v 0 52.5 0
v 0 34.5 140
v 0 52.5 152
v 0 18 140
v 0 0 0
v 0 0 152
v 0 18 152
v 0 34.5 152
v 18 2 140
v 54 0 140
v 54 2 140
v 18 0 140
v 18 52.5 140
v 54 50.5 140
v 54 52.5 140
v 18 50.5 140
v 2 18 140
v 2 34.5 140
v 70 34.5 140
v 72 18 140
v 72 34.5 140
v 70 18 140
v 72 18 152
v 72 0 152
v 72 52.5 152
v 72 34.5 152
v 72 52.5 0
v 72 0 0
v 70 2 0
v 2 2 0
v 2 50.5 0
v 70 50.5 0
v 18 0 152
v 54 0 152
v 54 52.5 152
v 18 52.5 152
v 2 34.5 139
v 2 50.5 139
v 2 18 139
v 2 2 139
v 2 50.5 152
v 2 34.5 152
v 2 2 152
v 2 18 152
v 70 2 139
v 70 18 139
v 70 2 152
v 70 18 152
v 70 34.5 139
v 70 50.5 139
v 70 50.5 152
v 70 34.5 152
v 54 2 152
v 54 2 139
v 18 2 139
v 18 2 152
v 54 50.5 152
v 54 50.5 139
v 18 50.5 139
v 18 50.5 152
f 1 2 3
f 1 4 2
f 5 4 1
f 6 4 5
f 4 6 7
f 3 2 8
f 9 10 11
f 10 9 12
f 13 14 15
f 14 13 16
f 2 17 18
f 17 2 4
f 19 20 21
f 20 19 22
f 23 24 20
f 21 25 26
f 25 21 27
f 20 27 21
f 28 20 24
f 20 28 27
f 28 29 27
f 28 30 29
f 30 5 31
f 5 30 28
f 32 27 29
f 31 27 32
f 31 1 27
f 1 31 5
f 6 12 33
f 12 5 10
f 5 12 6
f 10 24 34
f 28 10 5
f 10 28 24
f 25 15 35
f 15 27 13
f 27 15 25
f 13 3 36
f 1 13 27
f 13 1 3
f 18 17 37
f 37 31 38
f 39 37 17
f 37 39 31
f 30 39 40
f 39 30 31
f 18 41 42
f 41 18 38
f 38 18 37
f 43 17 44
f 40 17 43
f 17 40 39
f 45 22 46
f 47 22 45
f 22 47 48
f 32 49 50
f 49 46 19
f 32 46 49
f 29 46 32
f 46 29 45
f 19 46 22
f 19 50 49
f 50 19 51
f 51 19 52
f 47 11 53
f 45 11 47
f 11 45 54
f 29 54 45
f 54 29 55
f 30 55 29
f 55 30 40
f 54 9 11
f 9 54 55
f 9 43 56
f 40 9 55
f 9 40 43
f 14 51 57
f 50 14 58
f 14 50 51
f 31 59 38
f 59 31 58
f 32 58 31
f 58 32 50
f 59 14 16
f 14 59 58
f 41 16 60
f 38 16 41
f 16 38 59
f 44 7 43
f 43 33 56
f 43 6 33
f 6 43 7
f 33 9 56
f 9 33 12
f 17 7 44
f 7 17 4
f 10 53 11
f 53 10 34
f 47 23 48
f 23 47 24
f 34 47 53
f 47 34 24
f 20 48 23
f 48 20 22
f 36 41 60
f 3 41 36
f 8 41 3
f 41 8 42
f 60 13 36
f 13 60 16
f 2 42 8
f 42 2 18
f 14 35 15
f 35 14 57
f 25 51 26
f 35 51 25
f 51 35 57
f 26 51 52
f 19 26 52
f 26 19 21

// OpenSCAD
// 盲人取药机 - 公盒子 (上下通透，四面围栏，四角带凸起)

box_w = 72;           // 盒子宽度 (X轴)
box_d = 52.5;         // 盒子深度 (Y轴)
box_h = 140;          // 盒子高度 (Z轴)
wall_thickness = 2;   // 壁厚

corner_size = 18;     // 凸起沿墙体方向的长度（略小于缺口2mm，留间隙）
protrude_h = 12;      // 凸起高度
anchor_overlap = 1;   // 向盒体内重叠，避免只有面接触导致切片分离

module father_box() {
    union() {
        // 主体：四面围栏（上下通透）
        difference() {
            cube([box_w, box_d, box_h], center=false);

            translate([wall_thickness, wall_thickness, -1])
                cube([
                    box_w - 2*wall_thickness,
                    box_d - 2*wall_thickness,
                    box_h + 2
                ], center=false);
        }

        // 四角L形凸起，只长在墙体上，保持中间完全通透
        // 左前角
        translate([0, 0, box_h - anchor_overlap])
            cube([corner_size, wall_thickness, protrude_h + anchor_overlap], center=false);
        translate([0, 0, box_h - anchor_overlap])
            cube([wall_thickness, corner_size, protrude_h + anchor_overlap], center=false);
        // 右前角
        translate([box_w - corner_size, 0, box_h - anchor_overlap])
            cube([corner_size, wall_thickness, protrude_h + anchor_overlap], center=false);
        translate([box_w - wall_thickness, 0, box_h - anchor_overlap])
            cube([wall_thickness, corner_size, protrude_h + anchor_overlap], center=false);
        // 左后角
        translate([0, box_d - wall_thickness, box_h - anchor_overlap])
            cube([corner_size, wall_thickness, protrude_h + anchor_overlap], center=false);
        translate([0, box_d - corner_size, box_h - anchor_overlap])
            cube([wall_thickness, corner_size, protrude_h + anchor_overlap], center=false);
        // 右后角
        translate([box_w - corner_size, box_d - wall_thickness, box_h - anchor_overlap])
            cube([corner_size, wall_thickness, protrude_h + anchor_overlap], center=false);
        translate([box_w - wall_thickness, box_d - corner_size, box_h - anchor_overlap])
            cube([wall_thickness, corner_size, protrude_h + anchor_overlap], center=false);
    }
}

// 渲染公盒子
father_box();
